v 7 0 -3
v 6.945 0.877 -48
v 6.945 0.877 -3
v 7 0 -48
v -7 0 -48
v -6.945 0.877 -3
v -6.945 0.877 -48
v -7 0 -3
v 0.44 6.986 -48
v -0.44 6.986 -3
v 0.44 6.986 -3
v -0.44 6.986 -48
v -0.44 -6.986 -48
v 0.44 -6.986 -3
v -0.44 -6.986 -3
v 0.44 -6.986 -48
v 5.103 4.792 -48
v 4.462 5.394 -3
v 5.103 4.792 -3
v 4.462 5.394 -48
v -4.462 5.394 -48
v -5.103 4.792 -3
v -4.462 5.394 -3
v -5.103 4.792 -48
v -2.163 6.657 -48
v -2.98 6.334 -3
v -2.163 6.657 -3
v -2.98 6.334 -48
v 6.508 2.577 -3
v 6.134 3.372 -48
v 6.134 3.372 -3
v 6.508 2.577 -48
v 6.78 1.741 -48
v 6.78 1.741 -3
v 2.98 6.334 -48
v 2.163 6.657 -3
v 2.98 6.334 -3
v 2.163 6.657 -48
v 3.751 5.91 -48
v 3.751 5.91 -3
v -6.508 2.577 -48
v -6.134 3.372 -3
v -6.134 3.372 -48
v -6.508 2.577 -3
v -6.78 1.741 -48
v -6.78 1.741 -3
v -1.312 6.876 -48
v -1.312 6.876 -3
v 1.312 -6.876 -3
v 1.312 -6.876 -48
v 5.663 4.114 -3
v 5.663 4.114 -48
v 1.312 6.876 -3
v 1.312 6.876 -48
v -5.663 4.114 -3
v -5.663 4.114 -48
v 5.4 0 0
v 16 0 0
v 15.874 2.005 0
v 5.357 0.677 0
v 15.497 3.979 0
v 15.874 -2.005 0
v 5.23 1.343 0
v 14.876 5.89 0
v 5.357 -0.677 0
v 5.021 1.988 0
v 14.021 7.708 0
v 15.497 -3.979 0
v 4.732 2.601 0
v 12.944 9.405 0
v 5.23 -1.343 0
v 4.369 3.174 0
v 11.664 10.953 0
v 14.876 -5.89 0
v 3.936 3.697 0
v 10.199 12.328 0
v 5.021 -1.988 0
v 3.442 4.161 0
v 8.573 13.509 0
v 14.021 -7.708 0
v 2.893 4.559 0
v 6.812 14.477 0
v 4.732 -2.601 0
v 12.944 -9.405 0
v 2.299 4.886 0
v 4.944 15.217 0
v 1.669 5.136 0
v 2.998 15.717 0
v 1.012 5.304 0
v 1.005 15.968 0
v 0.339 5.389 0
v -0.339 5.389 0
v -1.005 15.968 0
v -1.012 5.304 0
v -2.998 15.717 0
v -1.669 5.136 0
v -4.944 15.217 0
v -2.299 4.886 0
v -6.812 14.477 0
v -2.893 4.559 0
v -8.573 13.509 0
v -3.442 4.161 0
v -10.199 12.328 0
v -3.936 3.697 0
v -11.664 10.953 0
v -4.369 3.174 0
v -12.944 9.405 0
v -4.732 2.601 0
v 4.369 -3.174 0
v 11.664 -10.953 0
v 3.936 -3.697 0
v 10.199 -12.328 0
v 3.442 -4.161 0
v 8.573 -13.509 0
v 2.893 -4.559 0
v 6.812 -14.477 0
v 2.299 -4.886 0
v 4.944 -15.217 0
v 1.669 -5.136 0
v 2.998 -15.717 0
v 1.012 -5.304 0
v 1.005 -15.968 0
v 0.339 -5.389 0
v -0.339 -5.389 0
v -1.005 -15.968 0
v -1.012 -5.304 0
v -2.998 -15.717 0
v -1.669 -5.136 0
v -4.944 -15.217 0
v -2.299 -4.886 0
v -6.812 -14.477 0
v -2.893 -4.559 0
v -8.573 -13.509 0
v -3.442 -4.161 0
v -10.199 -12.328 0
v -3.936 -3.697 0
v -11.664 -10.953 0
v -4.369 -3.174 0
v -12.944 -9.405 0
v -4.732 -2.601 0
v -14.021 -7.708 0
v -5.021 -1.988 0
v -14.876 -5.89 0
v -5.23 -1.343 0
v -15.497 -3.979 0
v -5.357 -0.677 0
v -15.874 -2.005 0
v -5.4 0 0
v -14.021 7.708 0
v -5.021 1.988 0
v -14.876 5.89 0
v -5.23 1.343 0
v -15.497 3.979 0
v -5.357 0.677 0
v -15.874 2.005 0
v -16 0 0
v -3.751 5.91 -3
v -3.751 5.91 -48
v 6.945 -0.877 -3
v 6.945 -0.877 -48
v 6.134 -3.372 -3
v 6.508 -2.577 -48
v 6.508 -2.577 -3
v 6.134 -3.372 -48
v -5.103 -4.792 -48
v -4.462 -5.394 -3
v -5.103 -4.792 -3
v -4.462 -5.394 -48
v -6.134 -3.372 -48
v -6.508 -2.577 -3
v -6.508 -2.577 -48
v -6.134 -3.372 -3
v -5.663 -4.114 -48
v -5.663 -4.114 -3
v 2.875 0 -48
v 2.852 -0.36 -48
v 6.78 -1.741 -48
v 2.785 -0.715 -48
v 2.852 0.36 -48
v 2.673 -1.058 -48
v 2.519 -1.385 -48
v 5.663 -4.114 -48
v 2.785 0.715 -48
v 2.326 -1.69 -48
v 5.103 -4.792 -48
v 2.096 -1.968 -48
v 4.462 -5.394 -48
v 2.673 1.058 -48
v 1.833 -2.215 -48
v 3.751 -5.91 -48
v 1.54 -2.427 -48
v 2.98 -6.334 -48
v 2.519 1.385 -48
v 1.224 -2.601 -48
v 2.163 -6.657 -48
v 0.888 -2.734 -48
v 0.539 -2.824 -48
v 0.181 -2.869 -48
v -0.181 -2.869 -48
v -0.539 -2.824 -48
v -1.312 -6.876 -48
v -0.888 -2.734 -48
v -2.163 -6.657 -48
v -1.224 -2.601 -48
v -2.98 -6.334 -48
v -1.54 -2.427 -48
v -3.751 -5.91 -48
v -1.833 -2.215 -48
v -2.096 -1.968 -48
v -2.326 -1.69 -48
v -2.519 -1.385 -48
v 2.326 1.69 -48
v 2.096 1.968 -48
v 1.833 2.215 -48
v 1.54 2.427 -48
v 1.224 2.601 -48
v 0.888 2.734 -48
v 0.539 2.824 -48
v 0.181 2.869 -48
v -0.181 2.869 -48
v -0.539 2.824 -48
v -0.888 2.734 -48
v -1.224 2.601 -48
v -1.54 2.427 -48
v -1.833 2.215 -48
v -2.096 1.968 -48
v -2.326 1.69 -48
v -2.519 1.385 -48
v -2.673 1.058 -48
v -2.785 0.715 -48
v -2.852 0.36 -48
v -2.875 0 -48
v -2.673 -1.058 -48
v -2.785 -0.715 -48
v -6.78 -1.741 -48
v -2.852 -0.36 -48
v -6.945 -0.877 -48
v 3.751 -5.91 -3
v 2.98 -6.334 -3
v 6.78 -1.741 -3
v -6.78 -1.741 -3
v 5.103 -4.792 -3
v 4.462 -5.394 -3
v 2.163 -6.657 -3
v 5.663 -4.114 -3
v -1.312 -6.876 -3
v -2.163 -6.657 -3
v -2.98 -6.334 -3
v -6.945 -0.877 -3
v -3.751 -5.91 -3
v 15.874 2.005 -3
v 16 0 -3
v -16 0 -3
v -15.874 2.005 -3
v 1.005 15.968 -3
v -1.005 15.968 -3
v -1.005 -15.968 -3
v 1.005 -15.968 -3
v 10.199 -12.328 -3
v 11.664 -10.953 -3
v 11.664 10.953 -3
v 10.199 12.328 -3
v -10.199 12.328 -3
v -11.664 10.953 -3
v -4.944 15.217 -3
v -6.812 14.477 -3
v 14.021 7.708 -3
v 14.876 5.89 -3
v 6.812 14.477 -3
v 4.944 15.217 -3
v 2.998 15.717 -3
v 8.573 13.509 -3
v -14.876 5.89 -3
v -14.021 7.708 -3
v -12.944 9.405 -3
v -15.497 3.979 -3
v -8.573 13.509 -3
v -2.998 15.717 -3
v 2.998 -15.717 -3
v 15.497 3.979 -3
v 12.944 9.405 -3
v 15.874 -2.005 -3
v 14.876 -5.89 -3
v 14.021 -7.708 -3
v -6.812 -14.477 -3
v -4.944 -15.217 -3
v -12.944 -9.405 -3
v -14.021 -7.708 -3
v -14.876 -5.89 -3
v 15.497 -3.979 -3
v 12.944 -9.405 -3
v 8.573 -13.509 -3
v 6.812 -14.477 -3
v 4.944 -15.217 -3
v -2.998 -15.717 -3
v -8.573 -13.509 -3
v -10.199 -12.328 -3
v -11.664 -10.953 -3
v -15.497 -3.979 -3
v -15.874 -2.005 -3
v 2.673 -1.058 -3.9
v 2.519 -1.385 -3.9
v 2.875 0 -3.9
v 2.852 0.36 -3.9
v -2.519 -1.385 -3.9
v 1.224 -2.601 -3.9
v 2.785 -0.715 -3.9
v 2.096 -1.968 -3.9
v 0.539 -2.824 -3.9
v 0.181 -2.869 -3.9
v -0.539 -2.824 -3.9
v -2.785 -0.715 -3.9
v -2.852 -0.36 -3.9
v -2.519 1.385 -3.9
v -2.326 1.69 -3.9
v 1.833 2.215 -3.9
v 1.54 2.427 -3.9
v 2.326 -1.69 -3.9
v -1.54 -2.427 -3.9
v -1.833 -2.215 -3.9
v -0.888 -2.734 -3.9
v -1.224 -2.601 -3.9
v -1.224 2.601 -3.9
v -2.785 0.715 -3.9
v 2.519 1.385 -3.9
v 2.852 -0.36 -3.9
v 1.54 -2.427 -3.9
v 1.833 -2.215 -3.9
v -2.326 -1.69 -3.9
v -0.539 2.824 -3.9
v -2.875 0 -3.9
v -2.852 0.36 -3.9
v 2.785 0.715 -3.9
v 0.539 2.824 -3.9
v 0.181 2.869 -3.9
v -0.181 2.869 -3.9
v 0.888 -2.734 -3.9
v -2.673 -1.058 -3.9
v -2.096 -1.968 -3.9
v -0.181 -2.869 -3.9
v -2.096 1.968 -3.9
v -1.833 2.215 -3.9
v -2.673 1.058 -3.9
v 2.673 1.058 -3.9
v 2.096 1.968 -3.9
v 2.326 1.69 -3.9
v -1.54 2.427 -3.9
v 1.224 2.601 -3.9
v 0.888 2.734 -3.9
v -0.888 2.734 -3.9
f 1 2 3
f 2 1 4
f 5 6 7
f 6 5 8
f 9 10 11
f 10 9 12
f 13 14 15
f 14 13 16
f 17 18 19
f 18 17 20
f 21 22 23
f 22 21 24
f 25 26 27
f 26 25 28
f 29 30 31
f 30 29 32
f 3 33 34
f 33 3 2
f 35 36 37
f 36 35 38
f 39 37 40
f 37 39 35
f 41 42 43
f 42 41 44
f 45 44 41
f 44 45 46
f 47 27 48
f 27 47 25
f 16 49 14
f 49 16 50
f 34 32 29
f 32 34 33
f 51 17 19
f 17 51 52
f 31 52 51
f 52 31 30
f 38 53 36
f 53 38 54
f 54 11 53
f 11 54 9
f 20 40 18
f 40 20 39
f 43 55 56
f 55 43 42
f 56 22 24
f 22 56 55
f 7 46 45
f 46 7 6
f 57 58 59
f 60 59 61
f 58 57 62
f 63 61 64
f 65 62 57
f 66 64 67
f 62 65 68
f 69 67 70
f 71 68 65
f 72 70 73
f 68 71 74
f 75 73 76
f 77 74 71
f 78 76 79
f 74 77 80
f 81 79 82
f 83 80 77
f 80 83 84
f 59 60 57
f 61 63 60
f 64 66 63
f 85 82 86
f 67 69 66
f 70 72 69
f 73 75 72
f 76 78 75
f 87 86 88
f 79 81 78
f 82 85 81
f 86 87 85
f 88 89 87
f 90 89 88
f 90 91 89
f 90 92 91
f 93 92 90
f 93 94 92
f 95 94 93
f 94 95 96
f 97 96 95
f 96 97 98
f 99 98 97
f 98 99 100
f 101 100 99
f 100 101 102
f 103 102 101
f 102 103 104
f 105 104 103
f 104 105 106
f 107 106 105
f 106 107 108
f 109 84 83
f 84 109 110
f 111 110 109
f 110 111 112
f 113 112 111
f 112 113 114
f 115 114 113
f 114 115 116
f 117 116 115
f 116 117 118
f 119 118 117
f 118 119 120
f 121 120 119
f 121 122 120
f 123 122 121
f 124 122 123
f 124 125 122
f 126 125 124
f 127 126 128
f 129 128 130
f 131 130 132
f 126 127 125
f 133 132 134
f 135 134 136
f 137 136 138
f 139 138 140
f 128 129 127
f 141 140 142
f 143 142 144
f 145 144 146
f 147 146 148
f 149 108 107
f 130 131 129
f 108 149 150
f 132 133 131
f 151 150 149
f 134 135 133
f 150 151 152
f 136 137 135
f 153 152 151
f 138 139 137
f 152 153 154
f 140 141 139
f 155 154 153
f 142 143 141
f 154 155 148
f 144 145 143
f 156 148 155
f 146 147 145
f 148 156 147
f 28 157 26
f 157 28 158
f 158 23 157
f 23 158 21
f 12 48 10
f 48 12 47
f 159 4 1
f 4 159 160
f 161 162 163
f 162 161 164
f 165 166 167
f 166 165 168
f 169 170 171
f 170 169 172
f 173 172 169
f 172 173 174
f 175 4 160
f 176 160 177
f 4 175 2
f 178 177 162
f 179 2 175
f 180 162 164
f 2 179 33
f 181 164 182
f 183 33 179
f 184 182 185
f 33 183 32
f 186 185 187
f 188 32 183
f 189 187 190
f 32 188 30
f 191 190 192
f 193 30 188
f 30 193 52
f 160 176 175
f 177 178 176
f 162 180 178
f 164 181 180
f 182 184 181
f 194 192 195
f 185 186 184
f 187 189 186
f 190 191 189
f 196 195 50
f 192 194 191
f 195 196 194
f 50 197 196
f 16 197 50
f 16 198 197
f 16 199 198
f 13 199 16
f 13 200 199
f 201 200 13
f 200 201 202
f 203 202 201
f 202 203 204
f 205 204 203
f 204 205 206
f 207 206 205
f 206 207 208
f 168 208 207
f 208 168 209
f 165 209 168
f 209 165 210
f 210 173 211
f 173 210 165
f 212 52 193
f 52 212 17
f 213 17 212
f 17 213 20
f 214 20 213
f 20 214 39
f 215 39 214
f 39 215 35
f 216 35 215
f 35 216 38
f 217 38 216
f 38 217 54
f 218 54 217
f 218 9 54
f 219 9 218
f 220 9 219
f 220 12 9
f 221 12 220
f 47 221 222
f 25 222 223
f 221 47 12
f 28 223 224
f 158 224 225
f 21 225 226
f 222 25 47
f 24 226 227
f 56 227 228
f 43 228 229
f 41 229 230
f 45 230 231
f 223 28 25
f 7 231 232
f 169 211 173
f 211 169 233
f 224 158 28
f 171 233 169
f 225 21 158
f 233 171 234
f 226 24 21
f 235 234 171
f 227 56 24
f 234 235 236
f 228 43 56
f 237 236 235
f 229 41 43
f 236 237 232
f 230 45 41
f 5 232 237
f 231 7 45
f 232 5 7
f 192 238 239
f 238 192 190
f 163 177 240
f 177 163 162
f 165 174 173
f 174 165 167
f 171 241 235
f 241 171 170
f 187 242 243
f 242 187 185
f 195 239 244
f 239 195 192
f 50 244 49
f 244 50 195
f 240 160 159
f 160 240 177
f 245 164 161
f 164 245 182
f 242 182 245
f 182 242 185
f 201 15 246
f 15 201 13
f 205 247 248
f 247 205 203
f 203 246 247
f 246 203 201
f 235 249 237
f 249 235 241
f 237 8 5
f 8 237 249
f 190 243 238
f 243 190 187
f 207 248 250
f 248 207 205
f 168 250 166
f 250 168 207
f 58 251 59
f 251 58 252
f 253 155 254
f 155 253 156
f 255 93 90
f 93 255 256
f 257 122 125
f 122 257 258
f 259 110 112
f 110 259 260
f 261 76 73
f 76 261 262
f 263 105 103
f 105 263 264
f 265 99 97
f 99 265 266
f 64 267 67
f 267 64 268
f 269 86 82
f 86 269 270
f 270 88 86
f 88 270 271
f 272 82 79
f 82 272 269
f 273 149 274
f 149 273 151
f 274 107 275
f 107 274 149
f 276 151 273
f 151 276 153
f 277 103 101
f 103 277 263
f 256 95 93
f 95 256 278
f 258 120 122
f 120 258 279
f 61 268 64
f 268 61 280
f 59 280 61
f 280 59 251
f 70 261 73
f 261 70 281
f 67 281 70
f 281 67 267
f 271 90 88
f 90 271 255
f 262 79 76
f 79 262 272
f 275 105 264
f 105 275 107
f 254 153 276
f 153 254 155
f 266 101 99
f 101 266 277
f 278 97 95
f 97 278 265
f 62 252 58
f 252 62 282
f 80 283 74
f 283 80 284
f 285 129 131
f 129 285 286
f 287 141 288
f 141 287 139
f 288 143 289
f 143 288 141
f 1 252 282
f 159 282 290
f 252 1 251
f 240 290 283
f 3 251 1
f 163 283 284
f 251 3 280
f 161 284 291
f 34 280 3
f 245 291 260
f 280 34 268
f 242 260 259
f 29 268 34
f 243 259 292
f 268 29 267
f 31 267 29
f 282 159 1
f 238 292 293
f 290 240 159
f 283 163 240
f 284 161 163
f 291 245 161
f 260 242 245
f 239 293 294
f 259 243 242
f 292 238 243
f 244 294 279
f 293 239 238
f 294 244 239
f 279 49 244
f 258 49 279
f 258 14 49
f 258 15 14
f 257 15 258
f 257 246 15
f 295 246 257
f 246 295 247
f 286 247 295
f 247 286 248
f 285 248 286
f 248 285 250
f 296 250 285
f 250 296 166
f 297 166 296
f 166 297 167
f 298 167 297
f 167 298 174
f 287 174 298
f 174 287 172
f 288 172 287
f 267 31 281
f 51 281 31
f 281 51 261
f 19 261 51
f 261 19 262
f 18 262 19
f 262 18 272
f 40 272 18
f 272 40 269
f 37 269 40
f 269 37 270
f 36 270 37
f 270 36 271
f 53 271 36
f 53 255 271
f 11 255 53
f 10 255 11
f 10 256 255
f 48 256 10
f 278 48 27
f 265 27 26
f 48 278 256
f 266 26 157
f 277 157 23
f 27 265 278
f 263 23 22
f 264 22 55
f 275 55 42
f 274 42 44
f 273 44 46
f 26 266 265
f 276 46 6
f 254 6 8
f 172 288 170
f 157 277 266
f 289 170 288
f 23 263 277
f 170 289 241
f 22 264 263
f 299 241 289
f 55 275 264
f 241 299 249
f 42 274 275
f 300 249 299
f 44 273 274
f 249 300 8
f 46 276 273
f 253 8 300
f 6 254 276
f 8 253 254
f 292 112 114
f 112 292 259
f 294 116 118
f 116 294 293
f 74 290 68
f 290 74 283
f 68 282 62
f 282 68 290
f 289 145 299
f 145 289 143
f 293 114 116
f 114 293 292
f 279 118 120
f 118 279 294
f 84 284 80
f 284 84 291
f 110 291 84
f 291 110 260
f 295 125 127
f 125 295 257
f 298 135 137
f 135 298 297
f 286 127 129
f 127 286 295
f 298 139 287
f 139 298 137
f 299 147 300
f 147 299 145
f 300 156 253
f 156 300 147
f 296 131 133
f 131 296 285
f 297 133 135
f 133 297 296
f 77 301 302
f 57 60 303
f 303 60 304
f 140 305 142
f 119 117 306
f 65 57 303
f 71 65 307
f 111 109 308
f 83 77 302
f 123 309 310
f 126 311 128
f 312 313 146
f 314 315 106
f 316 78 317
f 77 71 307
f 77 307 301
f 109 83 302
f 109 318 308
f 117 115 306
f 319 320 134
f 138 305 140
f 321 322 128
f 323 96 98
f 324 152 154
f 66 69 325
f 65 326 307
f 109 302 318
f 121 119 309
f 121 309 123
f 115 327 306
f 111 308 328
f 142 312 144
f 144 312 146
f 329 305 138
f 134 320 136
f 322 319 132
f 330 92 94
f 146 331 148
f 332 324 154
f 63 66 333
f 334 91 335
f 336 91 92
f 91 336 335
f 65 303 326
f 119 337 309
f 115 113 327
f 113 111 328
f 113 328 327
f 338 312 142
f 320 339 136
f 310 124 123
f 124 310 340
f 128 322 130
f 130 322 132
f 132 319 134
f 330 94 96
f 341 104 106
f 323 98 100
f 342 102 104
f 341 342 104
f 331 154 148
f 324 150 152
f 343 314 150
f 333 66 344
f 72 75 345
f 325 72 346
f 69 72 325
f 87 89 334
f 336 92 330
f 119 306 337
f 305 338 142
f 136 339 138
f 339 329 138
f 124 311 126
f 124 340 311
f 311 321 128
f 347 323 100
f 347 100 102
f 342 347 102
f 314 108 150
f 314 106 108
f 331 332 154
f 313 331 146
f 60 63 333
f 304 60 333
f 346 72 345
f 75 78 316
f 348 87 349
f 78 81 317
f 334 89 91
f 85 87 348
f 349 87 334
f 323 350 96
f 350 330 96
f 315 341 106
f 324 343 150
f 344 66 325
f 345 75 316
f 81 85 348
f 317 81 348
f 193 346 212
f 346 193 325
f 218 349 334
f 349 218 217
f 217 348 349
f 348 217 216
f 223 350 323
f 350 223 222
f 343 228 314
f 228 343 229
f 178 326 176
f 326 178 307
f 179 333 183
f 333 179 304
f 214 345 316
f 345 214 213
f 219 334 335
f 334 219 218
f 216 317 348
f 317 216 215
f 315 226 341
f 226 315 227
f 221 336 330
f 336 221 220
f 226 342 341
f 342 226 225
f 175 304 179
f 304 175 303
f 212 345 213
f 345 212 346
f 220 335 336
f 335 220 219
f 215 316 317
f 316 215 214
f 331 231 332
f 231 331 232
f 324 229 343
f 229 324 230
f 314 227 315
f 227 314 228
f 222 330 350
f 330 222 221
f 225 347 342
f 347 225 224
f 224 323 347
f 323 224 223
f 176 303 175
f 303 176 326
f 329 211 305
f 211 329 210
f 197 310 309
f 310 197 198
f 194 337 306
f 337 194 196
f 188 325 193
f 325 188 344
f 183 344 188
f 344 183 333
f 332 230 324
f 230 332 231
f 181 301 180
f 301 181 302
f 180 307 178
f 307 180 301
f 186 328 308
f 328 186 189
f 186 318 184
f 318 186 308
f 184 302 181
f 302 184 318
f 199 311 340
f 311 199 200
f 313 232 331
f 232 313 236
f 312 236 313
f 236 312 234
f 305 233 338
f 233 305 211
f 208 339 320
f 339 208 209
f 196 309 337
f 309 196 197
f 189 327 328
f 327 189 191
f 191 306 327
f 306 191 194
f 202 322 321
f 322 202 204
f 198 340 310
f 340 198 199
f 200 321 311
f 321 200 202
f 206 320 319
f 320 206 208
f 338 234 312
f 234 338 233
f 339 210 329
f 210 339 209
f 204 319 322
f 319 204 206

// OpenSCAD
$fn = 50;


difference() {
	union() {
		translate(v = [0, 0, -48.0000000000]) {
			cylinder(h = 48, r = 7.0000000000);
		}
		translate(v = [0, 0, -3.0000000000]) {
			cylinder(h = 3, r = 16.0000000000);
		}
	}
	union() {
		translate(v = [0, 0, 0]) {
			rotate(a = [0, 0, 0]) {
				difference() {
					union() {
						#translate(v = [0, 0, -48.0000000000]) {
							cylinder(h = 48, r = 2.6000000000);
						}
						#translate(v = [0, 0, -3.9000000000]) {
							cylinder(h = 3.9000000000, r = 7.0000000000, r1 = 2.8750000000, r2 = 5.4000000000);
						}
						#translate(v = [0, 0, -48.0000000000]) {
							cylinder(h = 48, r = 2.8750000000);
						}
						#translate(v = [0, 0, -48.0000000000]) {
							cylinder(h = 48, r = 2.6000000000);
						}
					}
					union();
				}
			}
		}
	}
}
